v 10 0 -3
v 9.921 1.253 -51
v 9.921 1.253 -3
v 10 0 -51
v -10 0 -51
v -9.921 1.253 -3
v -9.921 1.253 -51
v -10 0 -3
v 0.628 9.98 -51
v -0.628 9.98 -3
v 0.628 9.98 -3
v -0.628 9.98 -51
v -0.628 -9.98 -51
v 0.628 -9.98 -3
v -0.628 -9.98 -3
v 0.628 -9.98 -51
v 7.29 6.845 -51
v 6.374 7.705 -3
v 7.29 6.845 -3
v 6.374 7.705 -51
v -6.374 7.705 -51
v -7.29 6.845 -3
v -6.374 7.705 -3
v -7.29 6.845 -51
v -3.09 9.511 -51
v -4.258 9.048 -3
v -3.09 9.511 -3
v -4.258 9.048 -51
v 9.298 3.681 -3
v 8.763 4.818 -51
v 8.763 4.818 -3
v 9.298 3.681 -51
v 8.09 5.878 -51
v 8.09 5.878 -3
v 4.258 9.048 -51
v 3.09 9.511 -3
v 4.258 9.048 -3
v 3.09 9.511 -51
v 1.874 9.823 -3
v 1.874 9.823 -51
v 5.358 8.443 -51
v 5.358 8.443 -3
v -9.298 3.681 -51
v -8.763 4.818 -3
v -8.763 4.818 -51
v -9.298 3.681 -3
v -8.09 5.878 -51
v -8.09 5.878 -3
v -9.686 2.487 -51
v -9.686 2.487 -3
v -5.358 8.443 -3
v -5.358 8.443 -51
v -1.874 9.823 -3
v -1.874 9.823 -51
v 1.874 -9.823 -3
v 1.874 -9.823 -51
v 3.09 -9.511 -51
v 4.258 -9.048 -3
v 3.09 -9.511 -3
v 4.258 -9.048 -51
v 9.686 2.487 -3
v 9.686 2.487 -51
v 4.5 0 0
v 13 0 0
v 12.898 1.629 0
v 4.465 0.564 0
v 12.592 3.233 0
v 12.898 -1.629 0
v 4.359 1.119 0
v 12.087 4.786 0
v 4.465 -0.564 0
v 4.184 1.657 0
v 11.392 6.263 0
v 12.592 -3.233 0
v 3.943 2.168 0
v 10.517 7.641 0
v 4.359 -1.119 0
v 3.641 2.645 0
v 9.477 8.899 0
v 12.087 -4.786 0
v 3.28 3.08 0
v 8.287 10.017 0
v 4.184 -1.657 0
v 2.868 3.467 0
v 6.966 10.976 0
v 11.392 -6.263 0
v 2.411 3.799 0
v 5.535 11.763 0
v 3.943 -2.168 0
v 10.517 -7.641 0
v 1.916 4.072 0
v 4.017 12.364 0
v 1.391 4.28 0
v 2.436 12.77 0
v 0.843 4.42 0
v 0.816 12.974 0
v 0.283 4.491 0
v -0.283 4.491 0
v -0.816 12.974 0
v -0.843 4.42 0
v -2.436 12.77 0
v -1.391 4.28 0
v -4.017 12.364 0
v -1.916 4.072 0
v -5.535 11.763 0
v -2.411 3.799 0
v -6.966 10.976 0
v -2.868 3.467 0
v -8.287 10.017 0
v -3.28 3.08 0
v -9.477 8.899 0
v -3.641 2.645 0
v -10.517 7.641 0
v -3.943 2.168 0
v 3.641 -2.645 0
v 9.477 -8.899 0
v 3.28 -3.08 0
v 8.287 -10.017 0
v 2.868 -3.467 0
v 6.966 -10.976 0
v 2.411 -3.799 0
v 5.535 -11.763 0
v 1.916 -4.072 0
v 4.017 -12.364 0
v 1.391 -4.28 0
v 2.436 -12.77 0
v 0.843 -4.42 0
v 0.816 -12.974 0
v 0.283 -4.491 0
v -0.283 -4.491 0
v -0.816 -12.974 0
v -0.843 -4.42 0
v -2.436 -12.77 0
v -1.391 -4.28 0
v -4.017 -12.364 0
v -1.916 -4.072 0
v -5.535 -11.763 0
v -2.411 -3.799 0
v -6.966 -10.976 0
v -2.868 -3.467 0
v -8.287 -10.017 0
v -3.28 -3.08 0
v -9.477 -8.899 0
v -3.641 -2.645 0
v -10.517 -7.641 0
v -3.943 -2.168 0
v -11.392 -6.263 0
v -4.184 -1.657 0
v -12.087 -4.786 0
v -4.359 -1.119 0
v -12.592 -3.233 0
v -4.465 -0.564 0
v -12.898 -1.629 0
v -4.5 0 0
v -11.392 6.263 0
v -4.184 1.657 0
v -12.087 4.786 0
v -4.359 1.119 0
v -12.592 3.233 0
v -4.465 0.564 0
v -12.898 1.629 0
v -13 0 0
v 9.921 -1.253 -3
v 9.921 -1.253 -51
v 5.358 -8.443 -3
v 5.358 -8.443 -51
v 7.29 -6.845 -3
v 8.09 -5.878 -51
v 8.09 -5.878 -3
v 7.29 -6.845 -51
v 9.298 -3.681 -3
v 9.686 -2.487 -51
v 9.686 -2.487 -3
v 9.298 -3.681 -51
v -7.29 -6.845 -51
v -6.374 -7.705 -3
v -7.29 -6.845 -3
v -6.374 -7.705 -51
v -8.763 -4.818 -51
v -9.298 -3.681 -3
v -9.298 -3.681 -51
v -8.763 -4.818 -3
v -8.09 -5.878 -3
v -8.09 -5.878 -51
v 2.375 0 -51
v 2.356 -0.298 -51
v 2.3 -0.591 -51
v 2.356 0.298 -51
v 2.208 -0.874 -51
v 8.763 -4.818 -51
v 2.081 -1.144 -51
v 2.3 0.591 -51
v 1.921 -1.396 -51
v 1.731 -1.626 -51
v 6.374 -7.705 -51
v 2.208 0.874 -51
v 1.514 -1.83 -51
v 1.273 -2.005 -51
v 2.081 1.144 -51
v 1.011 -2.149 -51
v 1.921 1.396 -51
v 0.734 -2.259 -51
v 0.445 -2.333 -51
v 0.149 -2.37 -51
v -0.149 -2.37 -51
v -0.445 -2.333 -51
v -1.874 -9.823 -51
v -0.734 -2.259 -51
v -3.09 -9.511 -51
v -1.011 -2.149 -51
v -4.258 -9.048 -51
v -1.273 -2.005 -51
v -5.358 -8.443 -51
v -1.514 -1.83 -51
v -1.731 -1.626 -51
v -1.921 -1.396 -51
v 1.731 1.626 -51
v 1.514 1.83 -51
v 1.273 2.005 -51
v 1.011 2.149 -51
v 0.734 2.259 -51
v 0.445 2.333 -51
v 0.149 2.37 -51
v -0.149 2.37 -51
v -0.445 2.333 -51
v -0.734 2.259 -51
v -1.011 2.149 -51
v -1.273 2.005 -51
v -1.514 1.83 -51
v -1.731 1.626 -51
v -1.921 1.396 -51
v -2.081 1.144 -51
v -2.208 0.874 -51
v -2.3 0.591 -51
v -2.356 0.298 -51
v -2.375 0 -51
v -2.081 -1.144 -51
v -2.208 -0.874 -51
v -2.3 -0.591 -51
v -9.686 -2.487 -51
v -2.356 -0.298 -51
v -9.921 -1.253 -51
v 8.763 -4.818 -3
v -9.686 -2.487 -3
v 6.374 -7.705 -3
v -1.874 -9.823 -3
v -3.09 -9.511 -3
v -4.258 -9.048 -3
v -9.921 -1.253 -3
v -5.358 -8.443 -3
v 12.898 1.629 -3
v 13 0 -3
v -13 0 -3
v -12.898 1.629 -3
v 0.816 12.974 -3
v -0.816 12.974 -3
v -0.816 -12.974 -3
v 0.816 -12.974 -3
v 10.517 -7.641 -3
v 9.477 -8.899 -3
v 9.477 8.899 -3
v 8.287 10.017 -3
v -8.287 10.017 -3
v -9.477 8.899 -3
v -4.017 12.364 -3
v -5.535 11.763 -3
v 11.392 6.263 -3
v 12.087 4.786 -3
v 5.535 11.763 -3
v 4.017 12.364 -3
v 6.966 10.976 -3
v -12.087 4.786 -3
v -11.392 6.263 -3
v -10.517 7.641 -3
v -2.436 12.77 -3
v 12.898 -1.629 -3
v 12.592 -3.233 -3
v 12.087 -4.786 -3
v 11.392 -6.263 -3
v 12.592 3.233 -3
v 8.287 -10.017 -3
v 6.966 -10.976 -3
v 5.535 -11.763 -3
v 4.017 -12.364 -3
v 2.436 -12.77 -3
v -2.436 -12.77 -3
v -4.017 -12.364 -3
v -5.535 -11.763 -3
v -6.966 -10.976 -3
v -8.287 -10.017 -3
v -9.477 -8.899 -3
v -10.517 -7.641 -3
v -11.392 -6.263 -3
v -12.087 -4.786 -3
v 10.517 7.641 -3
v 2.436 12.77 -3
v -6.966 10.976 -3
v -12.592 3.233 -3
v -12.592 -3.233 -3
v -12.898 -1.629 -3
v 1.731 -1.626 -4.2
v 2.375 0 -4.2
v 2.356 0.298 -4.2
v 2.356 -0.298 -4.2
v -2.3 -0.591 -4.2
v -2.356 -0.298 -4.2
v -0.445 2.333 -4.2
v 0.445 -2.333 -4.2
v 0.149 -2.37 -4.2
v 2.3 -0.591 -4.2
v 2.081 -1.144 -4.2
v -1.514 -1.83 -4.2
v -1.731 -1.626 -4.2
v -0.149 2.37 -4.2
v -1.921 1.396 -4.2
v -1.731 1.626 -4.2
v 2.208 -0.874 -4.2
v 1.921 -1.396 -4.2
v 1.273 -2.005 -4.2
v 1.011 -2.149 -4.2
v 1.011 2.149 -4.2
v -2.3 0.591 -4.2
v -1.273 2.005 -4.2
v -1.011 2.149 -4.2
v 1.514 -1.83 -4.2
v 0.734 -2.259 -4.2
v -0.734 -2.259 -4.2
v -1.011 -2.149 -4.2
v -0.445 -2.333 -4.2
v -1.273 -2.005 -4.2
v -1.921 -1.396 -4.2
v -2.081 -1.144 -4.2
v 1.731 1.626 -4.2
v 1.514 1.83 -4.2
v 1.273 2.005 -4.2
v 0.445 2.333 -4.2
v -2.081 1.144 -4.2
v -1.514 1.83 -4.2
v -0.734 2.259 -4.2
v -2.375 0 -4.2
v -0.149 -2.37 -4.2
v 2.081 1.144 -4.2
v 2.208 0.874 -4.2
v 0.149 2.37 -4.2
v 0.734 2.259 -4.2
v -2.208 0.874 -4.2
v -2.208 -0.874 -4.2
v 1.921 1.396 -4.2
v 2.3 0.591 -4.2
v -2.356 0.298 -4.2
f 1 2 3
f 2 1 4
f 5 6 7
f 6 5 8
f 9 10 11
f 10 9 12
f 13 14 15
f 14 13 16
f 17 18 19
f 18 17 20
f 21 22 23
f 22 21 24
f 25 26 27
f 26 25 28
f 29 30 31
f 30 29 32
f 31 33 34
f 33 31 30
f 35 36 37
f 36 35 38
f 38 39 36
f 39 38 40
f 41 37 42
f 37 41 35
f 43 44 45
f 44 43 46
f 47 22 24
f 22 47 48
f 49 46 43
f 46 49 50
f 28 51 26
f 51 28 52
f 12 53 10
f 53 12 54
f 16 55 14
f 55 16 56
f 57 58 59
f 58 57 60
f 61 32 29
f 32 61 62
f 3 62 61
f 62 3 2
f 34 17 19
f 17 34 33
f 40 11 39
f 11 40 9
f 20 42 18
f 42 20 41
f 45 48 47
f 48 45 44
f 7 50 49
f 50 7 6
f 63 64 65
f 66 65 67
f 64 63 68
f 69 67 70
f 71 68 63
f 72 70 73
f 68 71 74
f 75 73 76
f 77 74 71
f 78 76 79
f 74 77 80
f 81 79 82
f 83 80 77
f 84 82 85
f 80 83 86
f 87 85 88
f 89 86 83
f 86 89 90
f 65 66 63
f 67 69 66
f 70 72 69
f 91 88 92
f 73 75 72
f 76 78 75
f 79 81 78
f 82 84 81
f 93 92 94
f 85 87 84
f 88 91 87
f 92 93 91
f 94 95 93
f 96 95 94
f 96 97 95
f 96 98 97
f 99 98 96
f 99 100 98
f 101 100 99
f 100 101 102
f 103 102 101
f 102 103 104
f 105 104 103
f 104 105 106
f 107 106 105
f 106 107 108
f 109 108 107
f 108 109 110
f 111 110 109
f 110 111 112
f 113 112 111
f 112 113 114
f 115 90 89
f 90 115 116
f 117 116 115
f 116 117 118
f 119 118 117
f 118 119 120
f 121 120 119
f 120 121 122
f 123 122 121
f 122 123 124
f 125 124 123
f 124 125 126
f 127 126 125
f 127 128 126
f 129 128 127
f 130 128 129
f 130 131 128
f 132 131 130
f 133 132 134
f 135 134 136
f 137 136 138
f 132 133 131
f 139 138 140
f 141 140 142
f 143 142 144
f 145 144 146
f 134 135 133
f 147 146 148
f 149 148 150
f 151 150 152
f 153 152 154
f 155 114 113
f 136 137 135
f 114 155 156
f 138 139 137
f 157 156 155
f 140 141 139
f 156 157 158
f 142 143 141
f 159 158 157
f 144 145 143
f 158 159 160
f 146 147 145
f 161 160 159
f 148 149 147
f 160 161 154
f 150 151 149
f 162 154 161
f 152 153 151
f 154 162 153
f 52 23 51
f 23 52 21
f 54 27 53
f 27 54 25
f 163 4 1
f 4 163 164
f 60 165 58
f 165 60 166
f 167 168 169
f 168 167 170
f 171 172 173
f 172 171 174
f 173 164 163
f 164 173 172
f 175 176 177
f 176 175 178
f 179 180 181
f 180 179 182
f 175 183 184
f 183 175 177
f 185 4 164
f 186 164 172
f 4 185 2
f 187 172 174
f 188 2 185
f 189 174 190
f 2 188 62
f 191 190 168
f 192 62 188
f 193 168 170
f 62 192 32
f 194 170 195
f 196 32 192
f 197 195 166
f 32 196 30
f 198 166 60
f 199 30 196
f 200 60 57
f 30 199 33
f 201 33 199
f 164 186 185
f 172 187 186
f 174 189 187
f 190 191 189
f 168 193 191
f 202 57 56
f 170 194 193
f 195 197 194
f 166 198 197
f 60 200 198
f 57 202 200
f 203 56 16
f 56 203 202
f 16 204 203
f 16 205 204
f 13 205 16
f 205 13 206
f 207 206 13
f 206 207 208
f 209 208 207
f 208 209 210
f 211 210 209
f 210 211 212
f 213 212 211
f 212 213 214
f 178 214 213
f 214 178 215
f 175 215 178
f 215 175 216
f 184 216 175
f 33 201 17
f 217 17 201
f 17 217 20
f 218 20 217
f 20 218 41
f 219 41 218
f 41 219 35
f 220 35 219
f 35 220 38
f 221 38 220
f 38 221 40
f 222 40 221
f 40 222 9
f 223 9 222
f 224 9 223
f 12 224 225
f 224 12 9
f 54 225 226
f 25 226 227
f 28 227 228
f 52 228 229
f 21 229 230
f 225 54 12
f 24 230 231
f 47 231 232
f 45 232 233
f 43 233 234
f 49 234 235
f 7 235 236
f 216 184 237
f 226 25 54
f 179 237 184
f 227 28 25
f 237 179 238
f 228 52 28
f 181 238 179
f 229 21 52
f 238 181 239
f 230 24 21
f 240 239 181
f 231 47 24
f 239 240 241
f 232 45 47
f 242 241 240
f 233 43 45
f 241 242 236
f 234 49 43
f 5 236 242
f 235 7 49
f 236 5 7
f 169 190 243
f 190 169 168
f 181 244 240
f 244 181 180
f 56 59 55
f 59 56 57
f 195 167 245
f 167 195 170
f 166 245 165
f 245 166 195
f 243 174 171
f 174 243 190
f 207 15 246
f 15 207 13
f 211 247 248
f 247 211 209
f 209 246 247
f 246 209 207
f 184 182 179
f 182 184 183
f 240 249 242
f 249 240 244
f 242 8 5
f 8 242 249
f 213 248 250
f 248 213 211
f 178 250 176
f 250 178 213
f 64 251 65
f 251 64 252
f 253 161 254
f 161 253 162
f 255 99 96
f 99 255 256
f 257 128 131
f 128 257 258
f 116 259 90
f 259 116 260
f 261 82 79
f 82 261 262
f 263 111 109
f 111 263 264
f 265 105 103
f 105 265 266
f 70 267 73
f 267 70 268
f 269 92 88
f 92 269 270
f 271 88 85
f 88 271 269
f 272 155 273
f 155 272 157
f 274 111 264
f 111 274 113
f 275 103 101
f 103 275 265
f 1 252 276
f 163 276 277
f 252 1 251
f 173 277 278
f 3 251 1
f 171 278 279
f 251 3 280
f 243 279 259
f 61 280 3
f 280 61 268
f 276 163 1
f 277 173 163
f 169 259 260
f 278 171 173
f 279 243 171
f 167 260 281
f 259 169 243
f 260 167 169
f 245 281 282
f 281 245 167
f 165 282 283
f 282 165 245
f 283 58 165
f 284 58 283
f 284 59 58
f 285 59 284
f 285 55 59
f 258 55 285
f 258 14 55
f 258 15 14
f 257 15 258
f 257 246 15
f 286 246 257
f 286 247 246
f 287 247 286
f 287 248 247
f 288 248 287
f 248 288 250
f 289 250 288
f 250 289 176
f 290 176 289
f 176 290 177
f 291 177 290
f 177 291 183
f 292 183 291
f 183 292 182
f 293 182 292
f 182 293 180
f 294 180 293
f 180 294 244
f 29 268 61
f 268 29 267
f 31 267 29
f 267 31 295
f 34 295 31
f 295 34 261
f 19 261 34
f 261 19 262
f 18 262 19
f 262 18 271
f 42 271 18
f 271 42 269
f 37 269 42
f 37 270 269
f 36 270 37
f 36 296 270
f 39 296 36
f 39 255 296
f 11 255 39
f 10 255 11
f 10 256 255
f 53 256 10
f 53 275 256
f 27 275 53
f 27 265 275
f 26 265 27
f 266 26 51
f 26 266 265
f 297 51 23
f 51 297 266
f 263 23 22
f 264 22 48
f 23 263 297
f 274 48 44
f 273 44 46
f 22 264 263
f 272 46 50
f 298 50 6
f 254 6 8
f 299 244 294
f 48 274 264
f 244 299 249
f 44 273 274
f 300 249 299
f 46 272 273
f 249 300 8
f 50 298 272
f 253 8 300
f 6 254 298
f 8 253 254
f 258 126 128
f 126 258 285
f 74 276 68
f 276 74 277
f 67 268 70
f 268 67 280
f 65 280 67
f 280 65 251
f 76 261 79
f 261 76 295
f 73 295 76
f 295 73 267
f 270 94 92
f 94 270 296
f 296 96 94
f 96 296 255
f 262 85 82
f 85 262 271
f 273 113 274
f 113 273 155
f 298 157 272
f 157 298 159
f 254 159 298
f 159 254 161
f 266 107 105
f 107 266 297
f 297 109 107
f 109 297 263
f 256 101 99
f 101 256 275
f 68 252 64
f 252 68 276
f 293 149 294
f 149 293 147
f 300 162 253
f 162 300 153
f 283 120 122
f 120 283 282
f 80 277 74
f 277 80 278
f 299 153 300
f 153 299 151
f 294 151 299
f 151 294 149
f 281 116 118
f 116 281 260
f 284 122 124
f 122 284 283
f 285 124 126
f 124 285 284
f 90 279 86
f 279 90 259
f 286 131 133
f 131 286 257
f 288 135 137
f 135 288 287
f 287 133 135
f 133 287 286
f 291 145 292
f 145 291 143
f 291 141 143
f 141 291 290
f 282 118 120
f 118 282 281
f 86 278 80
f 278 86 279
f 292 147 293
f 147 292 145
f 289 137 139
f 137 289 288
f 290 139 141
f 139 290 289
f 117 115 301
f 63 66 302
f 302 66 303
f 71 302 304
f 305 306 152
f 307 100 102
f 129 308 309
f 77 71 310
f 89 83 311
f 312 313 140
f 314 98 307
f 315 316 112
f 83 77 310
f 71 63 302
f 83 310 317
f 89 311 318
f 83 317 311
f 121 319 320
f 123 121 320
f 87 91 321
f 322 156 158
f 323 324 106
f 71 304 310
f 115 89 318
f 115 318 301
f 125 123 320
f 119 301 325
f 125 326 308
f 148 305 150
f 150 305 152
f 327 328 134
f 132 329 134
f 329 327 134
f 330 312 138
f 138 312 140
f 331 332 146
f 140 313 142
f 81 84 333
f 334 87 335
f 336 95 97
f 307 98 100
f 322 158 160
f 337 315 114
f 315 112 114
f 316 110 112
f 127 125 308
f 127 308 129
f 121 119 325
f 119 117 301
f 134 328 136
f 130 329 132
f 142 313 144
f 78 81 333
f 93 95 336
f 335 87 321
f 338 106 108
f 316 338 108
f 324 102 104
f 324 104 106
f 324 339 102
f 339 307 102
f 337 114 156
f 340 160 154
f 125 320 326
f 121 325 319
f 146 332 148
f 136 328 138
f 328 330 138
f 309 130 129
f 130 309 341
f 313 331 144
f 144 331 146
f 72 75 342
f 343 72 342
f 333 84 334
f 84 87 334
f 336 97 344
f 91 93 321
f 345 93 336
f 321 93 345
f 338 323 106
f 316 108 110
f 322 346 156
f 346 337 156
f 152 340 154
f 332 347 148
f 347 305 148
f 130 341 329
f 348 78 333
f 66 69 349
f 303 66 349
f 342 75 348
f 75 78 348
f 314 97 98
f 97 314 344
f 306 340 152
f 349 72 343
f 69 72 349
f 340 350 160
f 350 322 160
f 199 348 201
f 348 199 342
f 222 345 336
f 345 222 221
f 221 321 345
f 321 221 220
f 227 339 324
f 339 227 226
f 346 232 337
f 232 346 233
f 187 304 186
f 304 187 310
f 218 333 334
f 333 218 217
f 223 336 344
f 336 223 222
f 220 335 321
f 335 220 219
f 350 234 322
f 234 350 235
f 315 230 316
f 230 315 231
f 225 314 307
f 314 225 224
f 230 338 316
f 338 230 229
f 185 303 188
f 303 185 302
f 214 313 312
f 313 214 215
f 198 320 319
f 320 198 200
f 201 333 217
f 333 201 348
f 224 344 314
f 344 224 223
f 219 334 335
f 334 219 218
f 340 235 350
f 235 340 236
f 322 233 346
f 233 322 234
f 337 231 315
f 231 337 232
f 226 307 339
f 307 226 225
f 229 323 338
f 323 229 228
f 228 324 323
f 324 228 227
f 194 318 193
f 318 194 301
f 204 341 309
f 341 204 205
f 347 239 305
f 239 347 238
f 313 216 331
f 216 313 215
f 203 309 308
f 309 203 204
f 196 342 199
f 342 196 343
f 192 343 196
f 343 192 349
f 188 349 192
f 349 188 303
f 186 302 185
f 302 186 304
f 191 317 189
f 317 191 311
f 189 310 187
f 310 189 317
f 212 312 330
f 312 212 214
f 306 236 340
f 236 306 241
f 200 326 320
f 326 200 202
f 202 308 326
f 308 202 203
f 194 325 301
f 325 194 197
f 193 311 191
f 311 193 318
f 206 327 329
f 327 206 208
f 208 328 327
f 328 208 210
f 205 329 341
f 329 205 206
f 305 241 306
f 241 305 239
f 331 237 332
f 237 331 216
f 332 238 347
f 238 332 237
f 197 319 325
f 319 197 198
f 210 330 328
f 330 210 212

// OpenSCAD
$fn = 50;


difference() {
	union() {
		translate(v = [0, 0, -51.0000000000]) {
			cylinder(h = 51, r = 10.0000000000);
		}
		translate(v = [0, 0, -3.0000000000]) {
			cylinder(h = 3, r = 13.0000000000);
		}
	}
	union() {
		translate(v = [0, 0, 0]) {
			rotate(a = [0, 0, 0]) {
				difference() {
					union() {
						#translate(v = [0, 0, -51.0000000000]) {
							cylinder(h = 51, r = 2.2500000000);
						}
						#translate(v = [0, 0, -4.2000000000]) {
							cylinder(h = 4.2000000000, r = 10.0000000000, r1 = 2.3750000000, r2 = 4.5000000000);
						}
						#translate(v = [0, 0, -51.0000000000]) {
							cylinder(h = 51, r = 2.3750000000);
						}
						#translate(v = [0, 0, -51.0000000000]) {
							cylinder(h = 51, r = 2.2500000000);
						}
					}
					union();
				}
			}
		}
	}
}
